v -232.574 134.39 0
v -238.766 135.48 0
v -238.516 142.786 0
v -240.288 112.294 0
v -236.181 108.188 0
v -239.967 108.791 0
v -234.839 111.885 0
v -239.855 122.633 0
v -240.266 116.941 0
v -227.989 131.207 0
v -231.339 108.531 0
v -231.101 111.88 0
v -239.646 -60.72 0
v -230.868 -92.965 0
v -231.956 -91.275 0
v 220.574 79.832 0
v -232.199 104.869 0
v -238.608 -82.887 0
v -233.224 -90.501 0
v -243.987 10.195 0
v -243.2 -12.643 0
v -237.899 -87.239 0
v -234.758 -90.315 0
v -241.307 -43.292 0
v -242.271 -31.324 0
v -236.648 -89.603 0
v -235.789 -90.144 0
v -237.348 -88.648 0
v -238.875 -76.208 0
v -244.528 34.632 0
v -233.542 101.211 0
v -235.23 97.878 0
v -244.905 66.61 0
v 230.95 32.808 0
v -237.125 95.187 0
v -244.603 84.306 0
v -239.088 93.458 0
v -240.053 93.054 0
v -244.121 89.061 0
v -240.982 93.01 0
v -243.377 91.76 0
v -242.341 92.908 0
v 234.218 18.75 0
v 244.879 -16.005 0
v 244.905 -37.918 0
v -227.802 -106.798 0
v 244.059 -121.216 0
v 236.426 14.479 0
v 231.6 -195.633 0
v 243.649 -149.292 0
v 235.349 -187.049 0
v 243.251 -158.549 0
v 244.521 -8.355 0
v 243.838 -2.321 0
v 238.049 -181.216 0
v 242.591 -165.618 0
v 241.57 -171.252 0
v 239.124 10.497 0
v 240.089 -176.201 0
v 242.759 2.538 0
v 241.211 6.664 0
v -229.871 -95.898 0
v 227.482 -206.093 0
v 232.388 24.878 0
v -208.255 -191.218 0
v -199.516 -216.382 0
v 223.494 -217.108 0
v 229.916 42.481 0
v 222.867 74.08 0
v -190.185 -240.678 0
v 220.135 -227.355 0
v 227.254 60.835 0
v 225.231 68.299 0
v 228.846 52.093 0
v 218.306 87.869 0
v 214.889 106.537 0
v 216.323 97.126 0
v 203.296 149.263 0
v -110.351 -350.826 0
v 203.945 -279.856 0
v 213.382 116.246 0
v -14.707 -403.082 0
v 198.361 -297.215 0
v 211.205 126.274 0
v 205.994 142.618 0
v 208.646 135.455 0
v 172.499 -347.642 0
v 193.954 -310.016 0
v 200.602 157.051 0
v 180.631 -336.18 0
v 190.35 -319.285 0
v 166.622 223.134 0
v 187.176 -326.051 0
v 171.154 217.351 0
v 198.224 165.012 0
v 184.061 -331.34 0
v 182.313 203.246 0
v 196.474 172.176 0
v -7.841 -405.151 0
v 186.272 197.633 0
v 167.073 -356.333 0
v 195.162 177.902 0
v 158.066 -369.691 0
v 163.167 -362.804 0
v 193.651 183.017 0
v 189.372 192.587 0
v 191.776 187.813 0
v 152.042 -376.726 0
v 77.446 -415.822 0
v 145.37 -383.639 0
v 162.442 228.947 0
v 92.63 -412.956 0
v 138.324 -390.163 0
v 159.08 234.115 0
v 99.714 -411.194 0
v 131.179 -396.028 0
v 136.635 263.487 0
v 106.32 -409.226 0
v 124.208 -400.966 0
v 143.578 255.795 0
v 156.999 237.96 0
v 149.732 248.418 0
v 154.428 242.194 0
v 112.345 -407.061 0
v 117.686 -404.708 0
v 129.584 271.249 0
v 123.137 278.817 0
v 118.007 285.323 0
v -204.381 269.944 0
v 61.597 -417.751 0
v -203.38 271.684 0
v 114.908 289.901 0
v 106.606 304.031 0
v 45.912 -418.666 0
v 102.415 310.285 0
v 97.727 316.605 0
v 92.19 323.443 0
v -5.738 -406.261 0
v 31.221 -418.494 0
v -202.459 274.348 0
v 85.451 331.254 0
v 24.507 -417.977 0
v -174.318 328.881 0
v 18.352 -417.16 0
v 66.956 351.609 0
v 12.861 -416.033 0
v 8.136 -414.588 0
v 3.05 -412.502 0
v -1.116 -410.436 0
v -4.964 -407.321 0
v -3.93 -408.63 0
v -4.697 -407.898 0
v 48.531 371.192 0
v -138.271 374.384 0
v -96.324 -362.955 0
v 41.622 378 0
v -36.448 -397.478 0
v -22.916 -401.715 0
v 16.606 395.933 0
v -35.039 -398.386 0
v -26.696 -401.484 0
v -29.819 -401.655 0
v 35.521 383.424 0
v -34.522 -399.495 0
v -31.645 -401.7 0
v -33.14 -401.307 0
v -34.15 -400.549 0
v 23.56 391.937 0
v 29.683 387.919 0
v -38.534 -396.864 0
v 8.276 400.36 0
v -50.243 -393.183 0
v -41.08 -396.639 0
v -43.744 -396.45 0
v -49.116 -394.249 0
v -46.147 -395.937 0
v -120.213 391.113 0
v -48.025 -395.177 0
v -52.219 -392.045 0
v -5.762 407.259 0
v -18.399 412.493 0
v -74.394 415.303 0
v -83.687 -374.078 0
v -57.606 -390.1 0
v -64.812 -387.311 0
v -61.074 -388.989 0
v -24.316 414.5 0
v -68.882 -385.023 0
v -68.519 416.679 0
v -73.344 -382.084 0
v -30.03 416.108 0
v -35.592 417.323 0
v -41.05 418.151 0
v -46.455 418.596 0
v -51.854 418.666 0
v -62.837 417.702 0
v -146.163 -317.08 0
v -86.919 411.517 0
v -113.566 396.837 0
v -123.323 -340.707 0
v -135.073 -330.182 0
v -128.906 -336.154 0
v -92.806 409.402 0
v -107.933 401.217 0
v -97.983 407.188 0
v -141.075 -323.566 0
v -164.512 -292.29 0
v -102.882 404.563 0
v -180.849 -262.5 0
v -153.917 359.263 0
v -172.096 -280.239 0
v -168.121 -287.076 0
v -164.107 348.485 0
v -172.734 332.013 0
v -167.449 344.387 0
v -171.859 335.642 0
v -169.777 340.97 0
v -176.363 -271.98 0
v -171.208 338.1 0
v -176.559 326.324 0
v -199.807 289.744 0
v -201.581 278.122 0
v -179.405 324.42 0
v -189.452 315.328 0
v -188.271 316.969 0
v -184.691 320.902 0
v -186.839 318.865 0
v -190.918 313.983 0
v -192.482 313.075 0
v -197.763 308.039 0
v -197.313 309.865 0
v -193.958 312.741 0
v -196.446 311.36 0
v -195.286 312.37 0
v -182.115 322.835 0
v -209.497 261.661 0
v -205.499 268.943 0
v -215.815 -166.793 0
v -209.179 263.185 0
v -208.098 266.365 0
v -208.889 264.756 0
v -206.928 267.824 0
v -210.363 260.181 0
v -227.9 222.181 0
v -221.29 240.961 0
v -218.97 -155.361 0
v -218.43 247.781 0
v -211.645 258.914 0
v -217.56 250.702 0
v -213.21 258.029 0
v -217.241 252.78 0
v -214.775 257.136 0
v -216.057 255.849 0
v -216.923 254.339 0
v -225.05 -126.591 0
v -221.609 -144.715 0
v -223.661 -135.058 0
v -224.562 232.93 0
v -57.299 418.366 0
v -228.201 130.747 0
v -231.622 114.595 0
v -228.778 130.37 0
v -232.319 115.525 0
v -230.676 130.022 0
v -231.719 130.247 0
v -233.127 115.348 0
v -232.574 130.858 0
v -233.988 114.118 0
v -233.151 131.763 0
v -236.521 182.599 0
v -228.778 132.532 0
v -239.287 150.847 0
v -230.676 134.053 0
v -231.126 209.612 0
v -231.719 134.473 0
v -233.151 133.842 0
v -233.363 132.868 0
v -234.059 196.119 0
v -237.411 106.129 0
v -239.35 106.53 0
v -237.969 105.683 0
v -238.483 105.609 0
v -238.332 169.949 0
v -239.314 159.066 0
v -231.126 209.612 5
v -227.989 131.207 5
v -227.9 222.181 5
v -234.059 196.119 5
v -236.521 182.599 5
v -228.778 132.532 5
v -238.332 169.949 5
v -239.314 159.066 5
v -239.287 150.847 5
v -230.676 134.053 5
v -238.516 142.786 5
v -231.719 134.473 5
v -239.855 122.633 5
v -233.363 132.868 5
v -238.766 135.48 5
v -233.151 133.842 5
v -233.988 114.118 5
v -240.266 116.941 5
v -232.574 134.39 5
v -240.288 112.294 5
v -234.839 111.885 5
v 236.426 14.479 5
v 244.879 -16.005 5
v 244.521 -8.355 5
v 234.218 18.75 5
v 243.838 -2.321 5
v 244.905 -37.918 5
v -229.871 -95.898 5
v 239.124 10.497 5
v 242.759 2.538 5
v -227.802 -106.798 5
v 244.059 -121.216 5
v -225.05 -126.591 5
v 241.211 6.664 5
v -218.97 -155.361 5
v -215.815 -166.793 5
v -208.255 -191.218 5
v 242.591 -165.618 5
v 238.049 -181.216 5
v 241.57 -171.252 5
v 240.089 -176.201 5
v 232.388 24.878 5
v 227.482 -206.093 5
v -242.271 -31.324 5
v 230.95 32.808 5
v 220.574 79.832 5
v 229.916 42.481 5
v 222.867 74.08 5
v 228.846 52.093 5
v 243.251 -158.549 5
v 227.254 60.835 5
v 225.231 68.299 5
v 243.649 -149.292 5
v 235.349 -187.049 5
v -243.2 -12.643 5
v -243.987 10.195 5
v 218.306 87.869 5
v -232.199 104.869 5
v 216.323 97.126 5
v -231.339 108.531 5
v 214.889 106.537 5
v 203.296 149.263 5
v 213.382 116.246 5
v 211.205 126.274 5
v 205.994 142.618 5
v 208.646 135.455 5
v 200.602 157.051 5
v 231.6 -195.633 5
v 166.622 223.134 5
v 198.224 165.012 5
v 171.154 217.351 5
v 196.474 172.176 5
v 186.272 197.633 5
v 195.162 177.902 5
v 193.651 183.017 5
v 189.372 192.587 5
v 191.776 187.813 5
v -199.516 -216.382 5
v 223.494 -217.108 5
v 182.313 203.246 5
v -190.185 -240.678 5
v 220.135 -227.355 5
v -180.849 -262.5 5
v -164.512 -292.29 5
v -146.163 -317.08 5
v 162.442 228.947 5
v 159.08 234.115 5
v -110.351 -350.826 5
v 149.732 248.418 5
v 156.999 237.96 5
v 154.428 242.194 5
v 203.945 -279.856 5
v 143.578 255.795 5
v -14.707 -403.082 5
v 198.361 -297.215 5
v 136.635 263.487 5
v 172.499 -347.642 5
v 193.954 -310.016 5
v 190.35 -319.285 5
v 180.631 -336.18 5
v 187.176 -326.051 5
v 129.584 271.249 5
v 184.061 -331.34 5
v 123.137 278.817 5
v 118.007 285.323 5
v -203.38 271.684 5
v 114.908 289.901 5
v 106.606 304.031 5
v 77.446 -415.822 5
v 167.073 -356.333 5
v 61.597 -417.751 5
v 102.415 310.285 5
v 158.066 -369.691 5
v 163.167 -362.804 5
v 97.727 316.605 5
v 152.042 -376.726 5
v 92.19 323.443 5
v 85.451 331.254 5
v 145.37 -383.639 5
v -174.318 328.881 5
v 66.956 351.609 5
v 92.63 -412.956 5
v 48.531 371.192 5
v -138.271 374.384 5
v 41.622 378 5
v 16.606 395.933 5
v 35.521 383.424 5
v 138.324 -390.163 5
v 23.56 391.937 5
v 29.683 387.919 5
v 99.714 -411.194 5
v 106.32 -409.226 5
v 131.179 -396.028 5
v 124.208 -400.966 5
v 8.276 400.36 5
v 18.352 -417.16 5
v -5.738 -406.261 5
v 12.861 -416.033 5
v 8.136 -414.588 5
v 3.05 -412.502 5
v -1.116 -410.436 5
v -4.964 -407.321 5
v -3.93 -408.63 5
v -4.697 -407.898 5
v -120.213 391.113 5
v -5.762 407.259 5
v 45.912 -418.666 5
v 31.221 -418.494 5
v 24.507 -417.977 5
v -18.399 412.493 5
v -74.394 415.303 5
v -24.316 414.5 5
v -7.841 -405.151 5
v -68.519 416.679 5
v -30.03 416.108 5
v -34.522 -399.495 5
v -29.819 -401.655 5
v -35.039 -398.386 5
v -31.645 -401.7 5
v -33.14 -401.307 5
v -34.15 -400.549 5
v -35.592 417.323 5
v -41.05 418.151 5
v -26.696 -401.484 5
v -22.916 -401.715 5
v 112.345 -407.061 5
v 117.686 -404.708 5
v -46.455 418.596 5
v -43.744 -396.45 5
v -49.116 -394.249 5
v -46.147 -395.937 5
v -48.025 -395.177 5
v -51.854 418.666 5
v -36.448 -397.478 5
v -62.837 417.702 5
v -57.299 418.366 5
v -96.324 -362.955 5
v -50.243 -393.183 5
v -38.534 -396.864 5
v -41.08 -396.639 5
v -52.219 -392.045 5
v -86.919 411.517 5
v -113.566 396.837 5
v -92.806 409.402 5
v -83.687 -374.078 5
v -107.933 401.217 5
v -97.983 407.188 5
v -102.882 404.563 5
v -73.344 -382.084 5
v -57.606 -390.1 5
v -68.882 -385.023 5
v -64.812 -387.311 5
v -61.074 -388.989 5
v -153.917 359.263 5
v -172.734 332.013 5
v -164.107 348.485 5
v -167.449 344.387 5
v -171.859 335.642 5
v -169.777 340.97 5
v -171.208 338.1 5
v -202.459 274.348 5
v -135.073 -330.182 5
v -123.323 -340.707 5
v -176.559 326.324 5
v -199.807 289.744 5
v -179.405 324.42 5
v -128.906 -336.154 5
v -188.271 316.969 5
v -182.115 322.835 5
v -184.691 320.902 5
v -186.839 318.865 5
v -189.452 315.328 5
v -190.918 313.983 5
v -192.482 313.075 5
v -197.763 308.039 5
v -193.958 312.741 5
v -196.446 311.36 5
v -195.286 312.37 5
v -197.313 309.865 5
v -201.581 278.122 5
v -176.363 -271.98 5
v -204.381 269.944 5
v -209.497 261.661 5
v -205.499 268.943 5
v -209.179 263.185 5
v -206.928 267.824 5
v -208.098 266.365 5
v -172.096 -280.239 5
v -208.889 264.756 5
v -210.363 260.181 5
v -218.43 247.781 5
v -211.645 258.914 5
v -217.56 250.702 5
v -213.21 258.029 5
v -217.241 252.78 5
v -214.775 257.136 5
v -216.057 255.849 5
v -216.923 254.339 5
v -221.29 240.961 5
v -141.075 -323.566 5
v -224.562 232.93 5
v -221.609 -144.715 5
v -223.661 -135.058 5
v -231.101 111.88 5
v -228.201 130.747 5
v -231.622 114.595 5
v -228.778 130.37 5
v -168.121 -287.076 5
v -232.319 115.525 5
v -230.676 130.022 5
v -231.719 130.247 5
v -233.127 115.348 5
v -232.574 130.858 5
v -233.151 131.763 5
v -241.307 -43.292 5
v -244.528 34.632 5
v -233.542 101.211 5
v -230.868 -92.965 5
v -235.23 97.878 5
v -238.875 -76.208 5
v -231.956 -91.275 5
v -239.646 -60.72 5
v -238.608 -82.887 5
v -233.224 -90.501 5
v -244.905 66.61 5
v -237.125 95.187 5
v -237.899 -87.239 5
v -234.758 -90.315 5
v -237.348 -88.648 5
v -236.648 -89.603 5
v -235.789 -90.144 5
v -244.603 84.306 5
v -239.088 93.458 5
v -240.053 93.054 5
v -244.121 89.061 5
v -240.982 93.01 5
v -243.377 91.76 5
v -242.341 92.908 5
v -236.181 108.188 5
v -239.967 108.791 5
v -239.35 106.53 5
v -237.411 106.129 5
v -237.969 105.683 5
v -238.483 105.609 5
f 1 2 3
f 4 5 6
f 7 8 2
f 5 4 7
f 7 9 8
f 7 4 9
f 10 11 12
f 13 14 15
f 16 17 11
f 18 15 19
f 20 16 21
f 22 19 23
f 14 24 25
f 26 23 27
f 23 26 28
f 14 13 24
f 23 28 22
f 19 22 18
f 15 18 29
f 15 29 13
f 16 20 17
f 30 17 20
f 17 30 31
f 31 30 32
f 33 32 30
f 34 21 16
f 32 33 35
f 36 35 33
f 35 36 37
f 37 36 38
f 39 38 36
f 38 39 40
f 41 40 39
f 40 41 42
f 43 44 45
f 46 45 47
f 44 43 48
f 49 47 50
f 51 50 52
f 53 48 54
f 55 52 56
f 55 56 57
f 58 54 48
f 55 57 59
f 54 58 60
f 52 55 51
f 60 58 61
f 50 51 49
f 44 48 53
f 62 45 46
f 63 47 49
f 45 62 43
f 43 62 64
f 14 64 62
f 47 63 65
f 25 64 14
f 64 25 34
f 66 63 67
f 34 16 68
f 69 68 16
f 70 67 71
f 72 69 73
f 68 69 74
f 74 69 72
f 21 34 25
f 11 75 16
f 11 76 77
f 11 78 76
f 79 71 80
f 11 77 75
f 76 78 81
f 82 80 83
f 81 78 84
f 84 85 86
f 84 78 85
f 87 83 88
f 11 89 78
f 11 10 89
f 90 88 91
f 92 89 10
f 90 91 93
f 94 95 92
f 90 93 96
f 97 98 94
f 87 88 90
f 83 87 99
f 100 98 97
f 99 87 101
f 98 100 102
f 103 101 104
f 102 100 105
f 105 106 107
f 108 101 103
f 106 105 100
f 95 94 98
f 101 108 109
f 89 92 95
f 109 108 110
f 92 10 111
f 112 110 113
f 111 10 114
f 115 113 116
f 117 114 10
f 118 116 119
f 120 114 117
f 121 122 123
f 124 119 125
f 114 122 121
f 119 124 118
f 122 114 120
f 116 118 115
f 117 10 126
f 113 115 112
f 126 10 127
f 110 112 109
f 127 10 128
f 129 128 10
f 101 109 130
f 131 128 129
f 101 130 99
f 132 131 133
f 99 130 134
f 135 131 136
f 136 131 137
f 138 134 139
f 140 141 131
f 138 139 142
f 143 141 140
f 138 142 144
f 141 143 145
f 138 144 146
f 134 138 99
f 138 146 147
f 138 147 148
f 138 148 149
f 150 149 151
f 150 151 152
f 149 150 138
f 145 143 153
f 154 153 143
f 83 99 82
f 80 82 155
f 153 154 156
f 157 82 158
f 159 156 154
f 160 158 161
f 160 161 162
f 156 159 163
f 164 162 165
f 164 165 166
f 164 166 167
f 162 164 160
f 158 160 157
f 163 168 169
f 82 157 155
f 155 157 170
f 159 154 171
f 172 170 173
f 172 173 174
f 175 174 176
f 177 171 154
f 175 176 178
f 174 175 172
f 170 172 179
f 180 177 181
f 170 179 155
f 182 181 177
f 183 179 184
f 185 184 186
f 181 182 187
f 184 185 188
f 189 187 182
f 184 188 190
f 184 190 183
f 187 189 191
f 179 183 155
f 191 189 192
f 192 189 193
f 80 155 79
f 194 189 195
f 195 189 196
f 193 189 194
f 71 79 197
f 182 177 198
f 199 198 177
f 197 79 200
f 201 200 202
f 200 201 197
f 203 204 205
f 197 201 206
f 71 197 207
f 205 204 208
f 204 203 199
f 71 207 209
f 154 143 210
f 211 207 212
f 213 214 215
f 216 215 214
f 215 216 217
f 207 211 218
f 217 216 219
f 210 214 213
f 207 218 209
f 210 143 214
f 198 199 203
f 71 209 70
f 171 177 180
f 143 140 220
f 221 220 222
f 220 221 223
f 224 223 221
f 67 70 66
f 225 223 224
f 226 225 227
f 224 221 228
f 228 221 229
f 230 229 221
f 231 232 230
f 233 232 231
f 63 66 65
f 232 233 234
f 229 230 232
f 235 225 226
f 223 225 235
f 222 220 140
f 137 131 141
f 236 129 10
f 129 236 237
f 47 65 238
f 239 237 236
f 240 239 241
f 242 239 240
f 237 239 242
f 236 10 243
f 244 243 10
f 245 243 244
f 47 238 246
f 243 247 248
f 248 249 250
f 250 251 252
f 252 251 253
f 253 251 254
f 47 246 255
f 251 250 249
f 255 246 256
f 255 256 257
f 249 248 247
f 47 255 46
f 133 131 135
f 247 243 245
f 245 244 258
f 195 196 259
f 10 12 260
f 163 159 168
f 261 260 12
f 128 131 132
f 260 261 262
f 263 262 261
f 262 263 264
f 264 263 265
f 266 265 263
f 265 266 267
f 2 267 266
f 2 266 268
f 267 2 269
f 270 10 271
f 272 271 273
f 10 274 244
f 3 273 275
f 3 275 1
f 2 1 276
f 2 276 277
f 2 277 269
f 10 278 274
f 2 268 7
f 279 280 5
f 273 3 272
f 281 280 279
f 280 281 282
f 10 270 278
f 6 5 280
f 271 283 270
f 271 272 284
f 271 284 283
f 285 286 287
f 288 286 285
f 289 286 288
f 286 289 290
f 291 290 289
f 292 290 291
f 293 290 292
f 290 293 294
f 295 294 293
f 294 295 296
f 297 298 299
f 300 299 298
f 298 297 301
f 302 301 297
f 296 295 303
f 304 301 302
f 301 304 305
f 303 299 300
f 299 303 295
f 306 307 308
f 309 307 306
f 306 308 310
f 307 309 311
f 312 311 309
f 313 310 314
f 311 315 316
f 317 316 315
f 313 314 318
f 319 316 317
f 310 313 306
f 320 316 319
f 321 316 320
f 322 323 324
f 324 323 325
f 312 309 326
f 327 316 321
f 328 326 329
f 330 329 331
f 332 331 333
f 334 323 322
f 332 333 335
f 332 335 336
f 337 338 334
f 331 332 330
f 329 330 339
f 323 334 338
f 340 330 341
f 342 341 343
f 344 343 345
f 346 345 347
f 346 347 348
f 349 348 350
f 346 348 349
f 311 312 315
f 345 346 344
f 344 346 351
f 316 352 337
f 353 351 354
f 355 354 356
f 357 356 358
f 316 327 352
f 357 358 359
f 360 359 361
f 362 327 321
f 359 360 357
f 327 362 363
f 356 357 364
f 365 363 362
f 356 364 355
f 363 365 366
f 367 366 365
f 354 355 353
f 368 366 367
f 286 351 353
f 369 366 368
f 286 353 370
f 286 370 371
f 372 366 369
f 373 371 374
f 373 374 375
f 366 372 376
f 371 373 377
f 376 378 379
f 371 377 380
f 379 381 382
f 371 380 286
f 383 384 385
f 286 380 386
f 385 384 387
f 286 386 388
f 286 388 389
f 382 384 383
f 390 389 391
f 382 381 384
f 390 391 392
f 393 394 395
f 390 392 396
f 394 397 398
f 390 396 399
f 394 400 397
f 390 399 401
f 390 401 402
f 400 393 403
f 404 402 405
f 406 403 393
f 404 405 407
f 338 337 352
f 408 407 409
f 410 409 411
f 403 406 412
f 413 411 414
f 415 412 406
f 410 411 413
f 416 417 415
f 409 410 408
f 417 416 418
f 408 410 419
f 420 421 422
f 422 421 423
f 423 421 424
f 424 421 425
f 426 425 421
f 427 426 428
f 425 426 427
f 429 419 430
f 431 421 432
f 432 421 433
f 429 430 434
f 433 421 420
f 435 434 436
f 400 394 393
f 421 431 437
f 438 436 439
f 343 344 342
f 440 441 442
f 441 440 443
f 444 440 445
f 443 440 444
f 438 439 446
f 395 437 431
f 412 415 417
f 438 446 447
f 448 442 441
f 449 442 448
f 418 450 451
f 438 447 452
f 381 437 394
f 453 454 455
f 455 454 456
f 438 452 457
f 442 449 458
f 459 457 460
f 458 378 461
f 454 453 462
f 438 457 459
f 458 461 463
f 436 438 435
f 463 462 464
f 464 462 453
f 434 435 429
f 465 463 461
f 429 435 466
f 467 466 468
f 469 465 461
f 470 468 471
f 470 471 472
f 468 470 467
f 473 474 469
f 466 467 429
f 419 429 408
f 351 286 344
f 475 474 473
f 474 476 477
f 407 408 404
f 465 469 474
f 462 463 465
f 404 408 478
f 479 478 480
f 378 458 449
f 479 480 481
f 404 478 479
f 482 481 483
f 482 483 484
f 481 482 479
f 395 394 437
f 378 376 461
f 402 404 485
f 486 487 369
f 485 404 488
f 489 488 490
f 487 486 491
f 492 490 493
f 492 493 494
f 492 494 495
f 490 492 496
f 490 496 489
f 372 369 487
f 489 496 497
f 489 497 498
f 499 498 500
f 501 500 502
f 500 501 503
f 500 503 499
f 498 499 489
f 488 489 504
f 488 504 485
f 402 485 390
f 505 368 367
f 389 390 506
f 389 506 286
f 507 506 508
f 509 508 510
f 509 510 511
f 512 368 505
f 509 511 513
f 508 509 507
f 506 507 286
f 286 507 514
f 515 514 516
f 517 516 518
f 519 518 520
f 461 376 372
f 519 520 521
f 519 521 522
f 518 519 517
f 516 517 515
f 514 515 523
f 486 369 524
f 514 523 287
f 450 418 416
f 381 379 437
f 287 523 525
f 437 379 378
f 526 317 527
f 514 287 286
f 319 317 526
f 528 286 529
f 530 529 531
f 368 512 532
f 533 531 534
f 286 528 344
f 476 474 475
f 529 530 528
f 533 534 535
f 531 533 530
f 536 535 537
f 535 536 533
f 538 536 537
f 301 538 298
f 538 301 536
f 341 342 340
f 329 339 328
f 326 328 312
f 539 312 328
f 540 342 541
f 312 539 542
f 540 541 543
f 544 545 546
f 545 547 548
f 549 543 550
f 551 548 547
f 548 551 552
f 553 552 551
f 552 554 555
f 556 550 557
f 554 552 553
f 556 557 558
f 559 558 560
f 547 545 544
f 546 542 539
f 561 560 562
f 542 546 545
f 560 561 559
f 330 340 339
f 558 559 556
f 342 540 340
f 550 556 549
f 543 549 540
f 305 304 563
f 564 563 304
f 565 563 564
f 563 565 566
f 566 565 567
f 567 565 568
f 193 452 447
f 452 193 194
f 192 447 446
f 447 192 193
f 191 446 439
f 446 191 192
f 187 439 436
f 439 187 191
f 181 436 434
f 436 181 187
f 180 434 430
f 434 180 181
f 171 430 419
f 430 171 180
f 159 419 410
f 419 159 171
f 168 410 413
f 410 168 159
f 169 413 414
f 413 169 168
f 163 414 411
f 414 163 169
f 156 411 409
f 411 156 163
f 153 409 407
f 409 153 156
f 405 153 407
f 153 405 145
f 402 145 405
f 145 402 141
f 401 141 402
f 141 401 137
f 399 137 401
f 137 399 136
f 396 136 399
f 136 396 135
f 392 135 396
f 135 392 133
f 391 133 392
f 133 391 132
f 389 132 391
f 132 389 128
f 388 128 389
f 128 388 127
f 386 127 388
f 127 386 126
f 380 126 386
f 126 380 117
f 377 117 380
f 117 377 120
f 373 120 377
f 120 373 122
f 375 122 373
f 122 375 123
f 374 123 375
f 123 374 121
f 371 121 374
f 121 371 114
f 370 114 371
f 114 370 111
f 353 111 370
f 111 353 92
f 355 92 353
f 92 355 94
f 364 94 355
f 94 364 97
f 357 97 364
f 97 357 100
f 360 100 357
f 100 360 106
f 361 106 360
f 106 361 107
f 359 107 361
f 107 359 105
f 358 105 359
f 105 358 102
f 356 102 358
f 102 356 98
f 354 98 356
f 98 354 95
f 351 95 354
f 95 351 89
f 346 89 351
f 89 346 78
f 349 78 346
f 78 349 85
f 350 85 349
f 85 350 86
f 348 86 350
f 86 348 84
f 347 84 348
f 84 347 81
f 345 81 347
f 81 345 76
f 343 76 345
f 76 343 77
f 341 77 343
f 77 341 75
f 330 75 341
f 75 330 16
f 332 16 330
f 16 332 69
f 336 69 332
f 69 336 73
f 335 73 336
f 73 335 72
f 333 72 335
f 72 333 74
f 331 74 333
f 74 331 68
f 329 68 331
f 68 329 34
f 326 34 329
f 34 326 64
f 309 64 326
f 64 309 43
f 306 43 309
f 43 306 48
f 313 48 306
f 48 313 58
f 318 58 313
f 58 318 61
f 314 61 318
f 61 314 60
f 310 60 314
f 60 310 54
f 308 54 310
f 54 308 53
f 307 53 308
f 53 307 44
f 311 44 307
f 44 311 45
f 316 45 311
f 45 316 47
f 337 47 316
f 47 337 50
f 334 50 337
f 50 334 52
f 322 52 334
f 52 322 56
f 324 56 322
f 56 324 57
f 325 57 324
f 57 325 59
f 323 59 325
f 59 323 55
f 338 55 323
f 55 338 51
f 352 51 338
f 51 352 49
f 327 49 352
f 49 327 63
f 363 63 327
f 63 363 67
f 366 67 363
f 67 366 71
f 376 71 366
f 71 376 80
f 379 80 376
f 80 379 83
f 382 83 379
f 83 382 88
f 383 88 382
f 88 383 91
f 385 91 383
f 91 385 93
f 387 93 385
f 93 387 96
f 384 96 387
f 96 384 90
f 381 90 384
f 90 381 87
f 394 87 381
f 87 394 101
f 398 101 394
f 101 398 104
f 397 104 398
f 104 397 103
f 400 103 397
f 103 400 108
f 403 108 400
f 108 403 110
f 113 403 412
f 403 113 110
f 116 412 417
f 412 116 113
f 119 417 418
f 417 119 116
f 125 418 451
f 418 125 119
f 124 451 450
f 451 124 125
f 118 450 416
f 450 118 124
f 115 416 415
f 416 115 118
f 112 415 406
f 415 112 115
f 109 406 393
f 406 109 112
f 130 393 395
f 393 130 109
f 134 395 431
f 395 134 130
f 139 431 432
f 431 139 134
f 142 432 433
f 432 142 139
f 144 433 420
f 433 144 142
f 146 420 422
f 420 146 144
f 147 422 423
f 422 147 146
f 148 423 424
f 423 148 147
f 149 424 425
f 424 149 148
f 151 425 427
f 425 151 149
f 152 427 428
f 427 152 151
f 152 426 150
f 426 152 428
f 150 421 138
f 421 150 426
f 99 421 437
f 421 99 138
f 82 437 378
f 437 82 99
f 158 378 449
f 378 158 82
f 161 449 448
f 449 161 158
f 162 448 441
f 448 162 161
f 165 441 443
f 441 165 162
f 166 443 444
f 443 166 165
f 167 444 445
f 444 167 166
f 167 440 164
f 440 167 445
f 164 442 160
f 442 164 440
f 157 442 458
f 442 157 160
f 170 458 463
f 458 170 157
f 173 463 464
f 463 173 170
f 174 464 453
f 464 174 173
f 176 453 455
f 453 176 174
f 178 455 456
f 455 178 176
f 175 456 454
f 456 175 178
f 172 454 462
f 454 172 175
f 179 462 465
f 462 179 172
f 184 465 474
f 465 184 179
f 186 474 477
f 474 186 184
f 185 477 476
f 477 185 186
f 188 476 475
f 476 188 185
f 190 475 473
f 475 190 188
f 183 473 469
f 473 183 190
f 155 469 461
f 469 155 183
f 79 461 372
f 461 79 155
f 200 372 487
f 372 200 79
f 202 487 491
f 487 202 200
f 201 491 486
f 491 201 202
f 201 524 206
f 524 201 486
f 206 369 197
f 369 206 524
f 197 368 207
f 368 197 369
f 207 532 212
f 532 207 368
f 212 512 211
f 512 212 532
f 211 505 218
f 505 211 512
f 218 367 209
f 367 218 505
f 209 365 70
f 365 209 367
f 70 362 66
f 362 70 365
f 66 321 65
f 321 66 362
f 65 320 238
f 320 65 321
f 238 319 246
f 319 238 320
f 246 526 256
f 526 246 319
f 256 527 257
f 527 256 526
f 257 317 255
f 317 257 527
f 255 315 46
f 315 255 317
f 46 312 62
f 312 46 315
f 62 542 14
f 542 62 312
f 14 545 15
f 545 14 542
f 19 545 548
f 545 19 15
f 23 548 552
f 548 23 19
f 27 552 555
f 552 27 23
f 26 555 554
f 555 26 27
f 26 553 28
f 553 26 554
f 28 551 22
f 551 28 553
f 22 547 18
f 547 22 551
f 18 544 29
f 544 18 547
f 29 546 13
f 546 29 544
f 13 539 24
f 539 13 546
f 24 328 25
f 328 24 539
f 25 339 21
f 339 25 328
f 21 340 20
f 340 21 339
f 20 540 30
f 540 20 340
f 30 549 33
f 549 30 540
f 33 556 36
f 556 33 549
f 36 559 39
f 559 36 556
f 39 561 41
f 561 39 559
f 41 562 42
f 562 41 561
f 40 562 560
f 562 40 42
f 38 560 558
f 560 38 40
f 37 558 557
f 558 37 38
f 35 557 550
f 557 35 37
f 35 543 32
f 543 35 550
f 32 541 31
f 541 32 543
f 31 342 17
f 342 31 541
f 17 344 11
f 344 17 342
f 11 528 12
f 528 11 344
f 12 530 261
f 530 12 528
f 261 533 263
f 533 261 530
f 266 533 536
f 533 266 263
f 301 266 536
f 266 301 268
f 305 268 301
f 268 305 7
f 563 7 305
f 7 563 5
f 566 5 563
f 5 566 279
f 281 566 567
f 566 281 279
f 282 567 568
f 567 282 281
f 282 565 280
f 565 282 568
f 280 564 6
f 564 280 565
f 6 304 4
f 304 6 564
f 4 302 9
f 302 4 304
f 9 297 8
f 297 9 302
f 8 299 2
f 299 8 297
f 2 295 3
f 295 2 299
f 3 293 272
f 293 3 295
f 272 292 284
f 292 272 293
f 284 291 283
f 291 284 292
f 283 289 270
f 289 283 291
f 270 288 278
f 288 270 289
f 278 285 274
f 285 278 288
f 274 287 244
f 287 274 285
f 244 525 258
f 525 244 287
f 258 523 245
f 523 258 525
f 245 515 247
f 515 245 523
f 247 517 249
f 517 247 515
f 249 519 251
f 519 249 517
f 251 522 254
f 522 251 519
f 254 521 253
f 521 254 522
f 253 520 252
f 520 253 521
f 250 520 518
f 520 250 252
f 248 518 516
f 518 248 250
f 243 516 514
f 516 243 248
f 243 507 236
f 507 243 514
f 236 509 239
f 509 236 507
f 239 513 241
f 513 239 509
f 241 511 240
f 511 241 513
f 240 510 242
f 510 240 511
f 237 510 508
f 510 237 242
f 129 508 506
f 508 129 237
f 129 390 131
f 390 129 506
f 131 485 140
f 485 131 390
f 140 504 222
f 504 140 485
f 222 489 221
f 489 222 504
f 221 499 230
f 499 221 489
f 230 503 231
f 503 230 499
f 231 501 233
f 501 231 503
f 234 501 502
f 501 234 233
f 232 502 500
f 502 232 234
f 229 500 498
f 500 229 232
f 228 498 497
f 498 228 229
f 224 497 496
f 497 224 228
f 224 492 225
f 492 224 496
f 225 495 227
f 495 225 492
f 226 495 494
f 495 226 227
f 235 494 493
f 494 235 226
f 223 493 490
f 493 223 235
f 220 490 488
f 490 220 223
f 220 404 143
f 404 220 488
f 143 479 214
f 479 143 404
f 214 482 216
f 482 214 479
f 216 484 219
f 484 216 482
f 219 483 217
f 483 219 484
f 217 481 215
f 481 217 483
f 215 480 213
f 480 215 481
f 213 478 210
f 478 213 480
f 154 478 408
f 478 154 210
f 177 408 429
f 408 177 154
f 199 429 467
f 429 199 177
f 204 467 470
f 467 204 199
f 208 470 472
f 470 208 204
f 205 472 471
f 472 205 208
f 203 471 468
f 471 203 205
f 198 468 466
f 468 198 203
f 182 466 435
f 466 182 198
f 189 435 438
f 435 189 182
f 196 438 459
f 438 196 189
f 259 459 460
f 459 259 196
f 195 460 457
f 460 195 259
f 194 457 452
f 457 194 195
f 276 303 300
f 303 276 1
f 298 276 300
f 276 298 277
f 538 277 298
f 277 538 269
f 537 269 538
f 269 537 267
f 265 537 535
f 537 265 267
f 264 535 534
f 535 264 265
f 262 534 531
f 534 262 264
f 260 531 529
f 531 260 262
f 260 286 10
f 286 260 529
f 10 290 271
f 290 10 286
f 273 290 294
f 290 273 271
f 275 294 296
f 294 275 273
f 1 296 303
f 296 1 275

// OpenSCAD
// Generated by inkscape None + inkscape-paths2openscad 0.27
// Sun Oct 29 22:29:20 2023 from "halloween2.tiff.svg"

// Module names are of the form poly_<inkscape-path-id>().  As a result,
// you can associate a polygon in this OpenSCAD program with the corresponding
// SVG element in the Inkscape document by looking for the XML element with
// the attribute id="inkscape-path-id".

// fudge value is used to ensure that subtracted solids are a tad taller
// in the z dimension than the polygon being subtracted from.  This helps
// keep the resulting .stl file manifold.
fudge = 0.1;
user_unit_scale_x = 1.0;
user_unit_scale_y = 1.0;
custom_scale_x = 1;
custom_scale_y = 1;
zsize = 5.00;
line_fn = 4;
min_line_width = 1.0;
line_width_scale = 1.0;
function min_line_mm(w) = max(min_line_width, w * line_width_scale) * 1;


path1_0_center = [0.000000,0.000000];
path1_0_points = [[8.136436,414.588319],[3.049788,412.502019],[-1.115740,410.436344],[-3.930287,408.629757],[-4.696612,407.898140],[-4.963994,407.320719],[-5.738400,406.261335],[-7.841020,405.151419],[-14.707328,403.081719],[-22.915758,401.715069],[-26.696033,401.483966],[-29.819154,401.654919],[-31.644980,401.699618],[-33.140174,401.307207],[-34.150440,400.548552],[-34.521484,399.494519],[-35.039033,398.385646],[-36.448201,397.477557],[-38.533768,396.863974],[-41.080514,396.638619],[-43.743787,396.450085],[-46.146619,395.936744],[-48.025336,395.176991],[-49.116264,394.249219],[-50.242978,393.182572],[-52.219133,392.044694],[-57.605534,390.099819],[-61.073583,388.988889],[-64.812374,387.310855],[-68.882491,385.023237],[-73.344523,382.083557],[-83.686675,374.078089],[-96.323524,362.954619],[-110.350759,350.825682],[-123.322684,340.706519],[-128.905580,336.154377],[-135.072815,330.182382],[-141.074955,323.565780],[-146.162564,317.079819],[-164.511594,292.290219],[-168.120681,287.076337],[-172.095542,280.239362],[-176.362785,271.980176],[-180.849019,262.499660],[-190.184884,240.678162],[-199.516001,216.381919],[-208.255230,191.217983],[-215.815433,166.793403],[-218.969918,155.360576],[-221.609470,144.715232],[-223.660696,135.058253],[-225.050204,126.590519],[-227.802078,106.798038],[-229.870780,95.897872],[-230.867604,92.965294],[-231.956029,91.275262],[-233.223521,90.500928],[-234.757544,90.315449],[-235.789132,90.144277],[-236.648387,89.602619],[-237.347630,88.648260],[-237.899181,87.238987],[-238.608495,82.886838],[-238.874894,76.208459],[-239.646363,60.720164],[-241.307384,43.292159],[-242.271391,31.324310],[-243.199986,12.643049],[-243.987488,-10.194734],[-244.528214,-34.632151],[-244.904816,-66.609843],[-244.602900,-84.305903],[-244.120820,-89.060607],[-243.377098,-91.759645],[-242.341063,-92.907932],[-240.982044,-93.010381],[-240.052638,-93.054399],[-239.088480,-93.458468],[-237.125062,-95.187291],[-235.230088,-97.877913],[-233.541856,-101.211395],[-232.198667,-104.868799],[-231.338819,-108.531189],[-231.100612,-111.879625],[-231.622344,-114.595171],[-232.318669,-115.524592],[-233.127465,-115.348445],[-233.987841,-114.118043],[-234.838904,-111.884701],[-236.180896,-108.188083],[-237.410903,-106.129280],[-237.969489,-105.683157],[-238.482774,-105.609404],[-239.350360,-106.529568],[-239.967513,-108.790885],[-240.288082,-112.294468],[-240.265919,-116.941429],[-239.854874,-122.632881],[-238.765808,-135.480315],[-238.516374,-142.785721],[-239.286664,-150.846851],[-239.313603,-159.066120],[-238.331878,-169.949059],[-236.520598,-182.598838],[-234.058871,-196.118626],[-231.125806,-209.611594],[-227.900511,-222.180913],[-224.562094,-232.929752],[-221.289664,-240.961281],[-218.429980,-247.781126],[-217.560054,-250.702074],[-217.240554,-252.779971],[-216.922518,-254.339458],[-216.056576,-255.848892],[-214.774981,-257.136051],[-213.209984,-258.028711],[-211.644992,-258.914073],[-210.363400,-260.181360],[-209.497460,-261.661382],[-209.179424,-263.184951],[-208.889017,-264.756030],[-208.098308,-266.365415],[-206.928058,-267.824160],[-205.499034,-268.943321],[-204.381389,-269.944329],[-203.380365,-271.683799],[-202.459180,-274.347635],[-201.581048,-278.121742],[-199.806808,-289.744392],[-197.763374,-308.038991],[-197.313484,-309.864817],[-196.446124,-311.360011],[-195.286144,-312.370277],[-193.958394,-312.741321],[-192.482114,-313.074933],[-190.917721,-313.983285],[-189.451829,-315.327647],[-188.271054,-316.969291],[-186.839428,-318.865220],[-184.690530,-320.901953],[-182.115289,-322.835018],[-179.404634,-324.419941],[-176.559388,-326.324072],[-174.318478,-328.881078],[-172.734221,-332.013151],[-171.858934,-335.642481],[-171.207749,-338.100225],[-169.776565,-340.970038],[-167.448620,-344.386598],[-164.107155,-348.484580],[-153.916620,-359.263517],[-138.270874,-374.384261],[-120.213499,-391.113031],[-113.566441,-396.837382],[-107.932850,-401.216975],[-102.882011,-404.563258],[-97.983211,-407.187682],[-92.805733,-409.401693],[-86.918864,-411.516741],[-74.393697,-415.303084],[-68.519042,-416.678758],[-62.837183,-417.701719],[-57.298756,-418.366181],[-51.854395,-418.666358],[-46.454732,-418.596465],[-41.050403,-418.150715],[-35.592040,-417.323322],[-30.030279,-416.108502],[-24.315752,-414.500468],[-18.399095,-412.493434],[-5.761923,-407.259222],[8.276166,-400.359581],[16.606136,-395.932788],[23.559582,-391.937123],[29.682628,-387.918876],[35.521397,-383.424333],[41.622013,-377.999785],[48.530597,-371.191517],[66.956166,-351.608981],[85.450973,-331.254017],[92.190049,-323.443050],[97.727085,-316.604696],[102.414715,-310.285156],[106.605575,-304.030633],[114.907516,-289.901441],[118.007471,-285.323277],[123.137254,-278.817040],[129.583943,-271.249446],[136.634616,-263.487211],[143.577841,-255.794989],[149.731841,-248.418025],[154.428404,-242.193921],[156.999316,-237.960281],[159.080186,-234.114691],[162.442479,-228.947161],[166.621765,-223.133926],[171.153616,-217.351221],[182.312991,-203.245989],[186.272308,-197.633163],[189.371666,-192.587166],[191.776280,-187.813221],[193.651366,-183.016556],[195.162140,-177.902394],[196.473816,-172.175961],[198.223716,-165.011947],[200.602041,-157.051121],[203.296379,-149.263342],[205.994316,-142.618471],[208.646415,-135.454531],[211.204829,-126.274177],[213.381586,-116.245620],[214.888716,-106.537071],[216.323204,-97.125939],[218.305641,-87.869391],[220.574241,-79.832426],[222.867216,-74.080041],[225.231136,-68.298910],[227.254304,-60.834590],[228.846127,-52.093183],[229.916016,-42.480791],[230.949768,-32.807741],[232.388229,-24.878258],[234.218058,-18.749672],[236.425916,-14.479311],[239.123770,-10.497338],[241.210851,-6.664067],[242.758545,-2.538332],[243.838241,2.321032],[244.521328,8.355188],[244.879194,16.005303],[244.904816,37.918069],[244.058916,121.216419],[243.649244,149.292460],[243.250867,158.548570],[242.590991,165.618044],[241.570262,171.251859],[240.089326,176.200991],[238.048828,181.216419],[235.349416,187.049119],[231.600207,195.632925],[227.482016,206.093494],[223.494026,217.108275],[220.135416,227.354719],[203.945419,279.856474],[198.361157,297.215351],[193.953516,310.015907],[190.349594,319.285402],[187.176488,326.051096],[184.061296,331.340248],[180.631116,336.180119],[172.498716,347.641994],[167.072616,356.332919],[163.167369,362.804172],[158.065736,369.691333],[152.041897,376.725835],[145.370029,383.639107],[138.324309,390.162580],[131.178915,396.027686],[124.208025,400.965856],[117.685816,404.708519],[112.345259,407.061374],[106.320056,409.226479],[99.713879,411.194485],[92.630404,412.956043],[77.446247,415.822410],[61.596972,417.750782],[45.911967,418.666358],[31.220618,418.494339],[24.506748,417.977107],[18.352312,417.159926],[12.860984,416.033447],[8.136436,414.588319],[8.136436,414.588319],[-227.988734,-131.207191],[-228.778054,-132.531880],[-230.675784,-134.052821],[-231.719110,-134.473099],[-232.573505,-134.389782],[-233.150799,-133.841753],[-233.362824,-132.867891],[-233.150799,-131.762983],[-232.573505,-130.858158],[-231.719110,-130.246790],[-230.675784,-130.022251],[-228.778054,-130.370326],[-228.200759,-130.747100],[-227.988734,-131.207191],[-227.988734,-131.207191]];
path1_0_paths = [[0,1,2,3,4,5,6,7,8,9,10,11,12,13,14,15,16,17,18,19,20,21,22,23,24,25,26,27,28,29,30,31,32,33,34,35,36,37,38,39,40,41,42,43,44,45,46,47,48,49,50,51,52,53,54,55,56,57,58,59,60,61,62,63,64,65,66,67,68,69,70,71,72,73,74,75,76,77,78,79,80,81,82,83,84,85,86,87,88,89,90,91,92,93,94,95,96,97,98,99,100,101,102,103,104,105,106,107,108,109,110,111,112,113,114,115,116,117,118,119,120,121,122,123,124,125,126,127,128,129,130,131,132,133,134,135,136,137,138,139,140,141,142,143,144,145,146,147,148,149,150,151,152,153,154,155,156,157,158,159,160,161,162,163,164,165,166,167,168,169,170,171,172,173,174,175,176,177,178,179,180,181,182,183,184,185,186,187,188,189,190,191,192,193,194,195,196,197,198,199,200,201,202,203,204,205,206,207,208,209,210,211,212,213,214,215,216,217,218,219,220,221,222,223,224,225,226,227,228,229,230,231,232,233,234,235,236,237,238,239,240,241,242,243,244,245,246,247,248,249,250,251,252,253,254,255,256,257,258,259,260,261,262,263,264,265,266,267,268,269,270,271,272],
				[273,274,275,276,277,278,279,280,281,282,283,284,285,286,287]];
module poly_path1(h, w, s, res=line_fn)
{
  scale([custom_scale_x, -custom_scale_y, 1]) union()
  {
    translate (path1_0_center) linear_extrude(height=h, convexity=10, scale=0.01*s)
      translate (-path1_0_center) polygon(path1_0_points, path1_0_paths);
  }
}

module halloween2(h)
{
  difference()
  {
    union()
    {
      translate ([0,0,0]) poly_path1(h, min_line_mm(2.68705), 100.0);
    }
    union()
    {
    }
  }
}

halloween2(zsize);
